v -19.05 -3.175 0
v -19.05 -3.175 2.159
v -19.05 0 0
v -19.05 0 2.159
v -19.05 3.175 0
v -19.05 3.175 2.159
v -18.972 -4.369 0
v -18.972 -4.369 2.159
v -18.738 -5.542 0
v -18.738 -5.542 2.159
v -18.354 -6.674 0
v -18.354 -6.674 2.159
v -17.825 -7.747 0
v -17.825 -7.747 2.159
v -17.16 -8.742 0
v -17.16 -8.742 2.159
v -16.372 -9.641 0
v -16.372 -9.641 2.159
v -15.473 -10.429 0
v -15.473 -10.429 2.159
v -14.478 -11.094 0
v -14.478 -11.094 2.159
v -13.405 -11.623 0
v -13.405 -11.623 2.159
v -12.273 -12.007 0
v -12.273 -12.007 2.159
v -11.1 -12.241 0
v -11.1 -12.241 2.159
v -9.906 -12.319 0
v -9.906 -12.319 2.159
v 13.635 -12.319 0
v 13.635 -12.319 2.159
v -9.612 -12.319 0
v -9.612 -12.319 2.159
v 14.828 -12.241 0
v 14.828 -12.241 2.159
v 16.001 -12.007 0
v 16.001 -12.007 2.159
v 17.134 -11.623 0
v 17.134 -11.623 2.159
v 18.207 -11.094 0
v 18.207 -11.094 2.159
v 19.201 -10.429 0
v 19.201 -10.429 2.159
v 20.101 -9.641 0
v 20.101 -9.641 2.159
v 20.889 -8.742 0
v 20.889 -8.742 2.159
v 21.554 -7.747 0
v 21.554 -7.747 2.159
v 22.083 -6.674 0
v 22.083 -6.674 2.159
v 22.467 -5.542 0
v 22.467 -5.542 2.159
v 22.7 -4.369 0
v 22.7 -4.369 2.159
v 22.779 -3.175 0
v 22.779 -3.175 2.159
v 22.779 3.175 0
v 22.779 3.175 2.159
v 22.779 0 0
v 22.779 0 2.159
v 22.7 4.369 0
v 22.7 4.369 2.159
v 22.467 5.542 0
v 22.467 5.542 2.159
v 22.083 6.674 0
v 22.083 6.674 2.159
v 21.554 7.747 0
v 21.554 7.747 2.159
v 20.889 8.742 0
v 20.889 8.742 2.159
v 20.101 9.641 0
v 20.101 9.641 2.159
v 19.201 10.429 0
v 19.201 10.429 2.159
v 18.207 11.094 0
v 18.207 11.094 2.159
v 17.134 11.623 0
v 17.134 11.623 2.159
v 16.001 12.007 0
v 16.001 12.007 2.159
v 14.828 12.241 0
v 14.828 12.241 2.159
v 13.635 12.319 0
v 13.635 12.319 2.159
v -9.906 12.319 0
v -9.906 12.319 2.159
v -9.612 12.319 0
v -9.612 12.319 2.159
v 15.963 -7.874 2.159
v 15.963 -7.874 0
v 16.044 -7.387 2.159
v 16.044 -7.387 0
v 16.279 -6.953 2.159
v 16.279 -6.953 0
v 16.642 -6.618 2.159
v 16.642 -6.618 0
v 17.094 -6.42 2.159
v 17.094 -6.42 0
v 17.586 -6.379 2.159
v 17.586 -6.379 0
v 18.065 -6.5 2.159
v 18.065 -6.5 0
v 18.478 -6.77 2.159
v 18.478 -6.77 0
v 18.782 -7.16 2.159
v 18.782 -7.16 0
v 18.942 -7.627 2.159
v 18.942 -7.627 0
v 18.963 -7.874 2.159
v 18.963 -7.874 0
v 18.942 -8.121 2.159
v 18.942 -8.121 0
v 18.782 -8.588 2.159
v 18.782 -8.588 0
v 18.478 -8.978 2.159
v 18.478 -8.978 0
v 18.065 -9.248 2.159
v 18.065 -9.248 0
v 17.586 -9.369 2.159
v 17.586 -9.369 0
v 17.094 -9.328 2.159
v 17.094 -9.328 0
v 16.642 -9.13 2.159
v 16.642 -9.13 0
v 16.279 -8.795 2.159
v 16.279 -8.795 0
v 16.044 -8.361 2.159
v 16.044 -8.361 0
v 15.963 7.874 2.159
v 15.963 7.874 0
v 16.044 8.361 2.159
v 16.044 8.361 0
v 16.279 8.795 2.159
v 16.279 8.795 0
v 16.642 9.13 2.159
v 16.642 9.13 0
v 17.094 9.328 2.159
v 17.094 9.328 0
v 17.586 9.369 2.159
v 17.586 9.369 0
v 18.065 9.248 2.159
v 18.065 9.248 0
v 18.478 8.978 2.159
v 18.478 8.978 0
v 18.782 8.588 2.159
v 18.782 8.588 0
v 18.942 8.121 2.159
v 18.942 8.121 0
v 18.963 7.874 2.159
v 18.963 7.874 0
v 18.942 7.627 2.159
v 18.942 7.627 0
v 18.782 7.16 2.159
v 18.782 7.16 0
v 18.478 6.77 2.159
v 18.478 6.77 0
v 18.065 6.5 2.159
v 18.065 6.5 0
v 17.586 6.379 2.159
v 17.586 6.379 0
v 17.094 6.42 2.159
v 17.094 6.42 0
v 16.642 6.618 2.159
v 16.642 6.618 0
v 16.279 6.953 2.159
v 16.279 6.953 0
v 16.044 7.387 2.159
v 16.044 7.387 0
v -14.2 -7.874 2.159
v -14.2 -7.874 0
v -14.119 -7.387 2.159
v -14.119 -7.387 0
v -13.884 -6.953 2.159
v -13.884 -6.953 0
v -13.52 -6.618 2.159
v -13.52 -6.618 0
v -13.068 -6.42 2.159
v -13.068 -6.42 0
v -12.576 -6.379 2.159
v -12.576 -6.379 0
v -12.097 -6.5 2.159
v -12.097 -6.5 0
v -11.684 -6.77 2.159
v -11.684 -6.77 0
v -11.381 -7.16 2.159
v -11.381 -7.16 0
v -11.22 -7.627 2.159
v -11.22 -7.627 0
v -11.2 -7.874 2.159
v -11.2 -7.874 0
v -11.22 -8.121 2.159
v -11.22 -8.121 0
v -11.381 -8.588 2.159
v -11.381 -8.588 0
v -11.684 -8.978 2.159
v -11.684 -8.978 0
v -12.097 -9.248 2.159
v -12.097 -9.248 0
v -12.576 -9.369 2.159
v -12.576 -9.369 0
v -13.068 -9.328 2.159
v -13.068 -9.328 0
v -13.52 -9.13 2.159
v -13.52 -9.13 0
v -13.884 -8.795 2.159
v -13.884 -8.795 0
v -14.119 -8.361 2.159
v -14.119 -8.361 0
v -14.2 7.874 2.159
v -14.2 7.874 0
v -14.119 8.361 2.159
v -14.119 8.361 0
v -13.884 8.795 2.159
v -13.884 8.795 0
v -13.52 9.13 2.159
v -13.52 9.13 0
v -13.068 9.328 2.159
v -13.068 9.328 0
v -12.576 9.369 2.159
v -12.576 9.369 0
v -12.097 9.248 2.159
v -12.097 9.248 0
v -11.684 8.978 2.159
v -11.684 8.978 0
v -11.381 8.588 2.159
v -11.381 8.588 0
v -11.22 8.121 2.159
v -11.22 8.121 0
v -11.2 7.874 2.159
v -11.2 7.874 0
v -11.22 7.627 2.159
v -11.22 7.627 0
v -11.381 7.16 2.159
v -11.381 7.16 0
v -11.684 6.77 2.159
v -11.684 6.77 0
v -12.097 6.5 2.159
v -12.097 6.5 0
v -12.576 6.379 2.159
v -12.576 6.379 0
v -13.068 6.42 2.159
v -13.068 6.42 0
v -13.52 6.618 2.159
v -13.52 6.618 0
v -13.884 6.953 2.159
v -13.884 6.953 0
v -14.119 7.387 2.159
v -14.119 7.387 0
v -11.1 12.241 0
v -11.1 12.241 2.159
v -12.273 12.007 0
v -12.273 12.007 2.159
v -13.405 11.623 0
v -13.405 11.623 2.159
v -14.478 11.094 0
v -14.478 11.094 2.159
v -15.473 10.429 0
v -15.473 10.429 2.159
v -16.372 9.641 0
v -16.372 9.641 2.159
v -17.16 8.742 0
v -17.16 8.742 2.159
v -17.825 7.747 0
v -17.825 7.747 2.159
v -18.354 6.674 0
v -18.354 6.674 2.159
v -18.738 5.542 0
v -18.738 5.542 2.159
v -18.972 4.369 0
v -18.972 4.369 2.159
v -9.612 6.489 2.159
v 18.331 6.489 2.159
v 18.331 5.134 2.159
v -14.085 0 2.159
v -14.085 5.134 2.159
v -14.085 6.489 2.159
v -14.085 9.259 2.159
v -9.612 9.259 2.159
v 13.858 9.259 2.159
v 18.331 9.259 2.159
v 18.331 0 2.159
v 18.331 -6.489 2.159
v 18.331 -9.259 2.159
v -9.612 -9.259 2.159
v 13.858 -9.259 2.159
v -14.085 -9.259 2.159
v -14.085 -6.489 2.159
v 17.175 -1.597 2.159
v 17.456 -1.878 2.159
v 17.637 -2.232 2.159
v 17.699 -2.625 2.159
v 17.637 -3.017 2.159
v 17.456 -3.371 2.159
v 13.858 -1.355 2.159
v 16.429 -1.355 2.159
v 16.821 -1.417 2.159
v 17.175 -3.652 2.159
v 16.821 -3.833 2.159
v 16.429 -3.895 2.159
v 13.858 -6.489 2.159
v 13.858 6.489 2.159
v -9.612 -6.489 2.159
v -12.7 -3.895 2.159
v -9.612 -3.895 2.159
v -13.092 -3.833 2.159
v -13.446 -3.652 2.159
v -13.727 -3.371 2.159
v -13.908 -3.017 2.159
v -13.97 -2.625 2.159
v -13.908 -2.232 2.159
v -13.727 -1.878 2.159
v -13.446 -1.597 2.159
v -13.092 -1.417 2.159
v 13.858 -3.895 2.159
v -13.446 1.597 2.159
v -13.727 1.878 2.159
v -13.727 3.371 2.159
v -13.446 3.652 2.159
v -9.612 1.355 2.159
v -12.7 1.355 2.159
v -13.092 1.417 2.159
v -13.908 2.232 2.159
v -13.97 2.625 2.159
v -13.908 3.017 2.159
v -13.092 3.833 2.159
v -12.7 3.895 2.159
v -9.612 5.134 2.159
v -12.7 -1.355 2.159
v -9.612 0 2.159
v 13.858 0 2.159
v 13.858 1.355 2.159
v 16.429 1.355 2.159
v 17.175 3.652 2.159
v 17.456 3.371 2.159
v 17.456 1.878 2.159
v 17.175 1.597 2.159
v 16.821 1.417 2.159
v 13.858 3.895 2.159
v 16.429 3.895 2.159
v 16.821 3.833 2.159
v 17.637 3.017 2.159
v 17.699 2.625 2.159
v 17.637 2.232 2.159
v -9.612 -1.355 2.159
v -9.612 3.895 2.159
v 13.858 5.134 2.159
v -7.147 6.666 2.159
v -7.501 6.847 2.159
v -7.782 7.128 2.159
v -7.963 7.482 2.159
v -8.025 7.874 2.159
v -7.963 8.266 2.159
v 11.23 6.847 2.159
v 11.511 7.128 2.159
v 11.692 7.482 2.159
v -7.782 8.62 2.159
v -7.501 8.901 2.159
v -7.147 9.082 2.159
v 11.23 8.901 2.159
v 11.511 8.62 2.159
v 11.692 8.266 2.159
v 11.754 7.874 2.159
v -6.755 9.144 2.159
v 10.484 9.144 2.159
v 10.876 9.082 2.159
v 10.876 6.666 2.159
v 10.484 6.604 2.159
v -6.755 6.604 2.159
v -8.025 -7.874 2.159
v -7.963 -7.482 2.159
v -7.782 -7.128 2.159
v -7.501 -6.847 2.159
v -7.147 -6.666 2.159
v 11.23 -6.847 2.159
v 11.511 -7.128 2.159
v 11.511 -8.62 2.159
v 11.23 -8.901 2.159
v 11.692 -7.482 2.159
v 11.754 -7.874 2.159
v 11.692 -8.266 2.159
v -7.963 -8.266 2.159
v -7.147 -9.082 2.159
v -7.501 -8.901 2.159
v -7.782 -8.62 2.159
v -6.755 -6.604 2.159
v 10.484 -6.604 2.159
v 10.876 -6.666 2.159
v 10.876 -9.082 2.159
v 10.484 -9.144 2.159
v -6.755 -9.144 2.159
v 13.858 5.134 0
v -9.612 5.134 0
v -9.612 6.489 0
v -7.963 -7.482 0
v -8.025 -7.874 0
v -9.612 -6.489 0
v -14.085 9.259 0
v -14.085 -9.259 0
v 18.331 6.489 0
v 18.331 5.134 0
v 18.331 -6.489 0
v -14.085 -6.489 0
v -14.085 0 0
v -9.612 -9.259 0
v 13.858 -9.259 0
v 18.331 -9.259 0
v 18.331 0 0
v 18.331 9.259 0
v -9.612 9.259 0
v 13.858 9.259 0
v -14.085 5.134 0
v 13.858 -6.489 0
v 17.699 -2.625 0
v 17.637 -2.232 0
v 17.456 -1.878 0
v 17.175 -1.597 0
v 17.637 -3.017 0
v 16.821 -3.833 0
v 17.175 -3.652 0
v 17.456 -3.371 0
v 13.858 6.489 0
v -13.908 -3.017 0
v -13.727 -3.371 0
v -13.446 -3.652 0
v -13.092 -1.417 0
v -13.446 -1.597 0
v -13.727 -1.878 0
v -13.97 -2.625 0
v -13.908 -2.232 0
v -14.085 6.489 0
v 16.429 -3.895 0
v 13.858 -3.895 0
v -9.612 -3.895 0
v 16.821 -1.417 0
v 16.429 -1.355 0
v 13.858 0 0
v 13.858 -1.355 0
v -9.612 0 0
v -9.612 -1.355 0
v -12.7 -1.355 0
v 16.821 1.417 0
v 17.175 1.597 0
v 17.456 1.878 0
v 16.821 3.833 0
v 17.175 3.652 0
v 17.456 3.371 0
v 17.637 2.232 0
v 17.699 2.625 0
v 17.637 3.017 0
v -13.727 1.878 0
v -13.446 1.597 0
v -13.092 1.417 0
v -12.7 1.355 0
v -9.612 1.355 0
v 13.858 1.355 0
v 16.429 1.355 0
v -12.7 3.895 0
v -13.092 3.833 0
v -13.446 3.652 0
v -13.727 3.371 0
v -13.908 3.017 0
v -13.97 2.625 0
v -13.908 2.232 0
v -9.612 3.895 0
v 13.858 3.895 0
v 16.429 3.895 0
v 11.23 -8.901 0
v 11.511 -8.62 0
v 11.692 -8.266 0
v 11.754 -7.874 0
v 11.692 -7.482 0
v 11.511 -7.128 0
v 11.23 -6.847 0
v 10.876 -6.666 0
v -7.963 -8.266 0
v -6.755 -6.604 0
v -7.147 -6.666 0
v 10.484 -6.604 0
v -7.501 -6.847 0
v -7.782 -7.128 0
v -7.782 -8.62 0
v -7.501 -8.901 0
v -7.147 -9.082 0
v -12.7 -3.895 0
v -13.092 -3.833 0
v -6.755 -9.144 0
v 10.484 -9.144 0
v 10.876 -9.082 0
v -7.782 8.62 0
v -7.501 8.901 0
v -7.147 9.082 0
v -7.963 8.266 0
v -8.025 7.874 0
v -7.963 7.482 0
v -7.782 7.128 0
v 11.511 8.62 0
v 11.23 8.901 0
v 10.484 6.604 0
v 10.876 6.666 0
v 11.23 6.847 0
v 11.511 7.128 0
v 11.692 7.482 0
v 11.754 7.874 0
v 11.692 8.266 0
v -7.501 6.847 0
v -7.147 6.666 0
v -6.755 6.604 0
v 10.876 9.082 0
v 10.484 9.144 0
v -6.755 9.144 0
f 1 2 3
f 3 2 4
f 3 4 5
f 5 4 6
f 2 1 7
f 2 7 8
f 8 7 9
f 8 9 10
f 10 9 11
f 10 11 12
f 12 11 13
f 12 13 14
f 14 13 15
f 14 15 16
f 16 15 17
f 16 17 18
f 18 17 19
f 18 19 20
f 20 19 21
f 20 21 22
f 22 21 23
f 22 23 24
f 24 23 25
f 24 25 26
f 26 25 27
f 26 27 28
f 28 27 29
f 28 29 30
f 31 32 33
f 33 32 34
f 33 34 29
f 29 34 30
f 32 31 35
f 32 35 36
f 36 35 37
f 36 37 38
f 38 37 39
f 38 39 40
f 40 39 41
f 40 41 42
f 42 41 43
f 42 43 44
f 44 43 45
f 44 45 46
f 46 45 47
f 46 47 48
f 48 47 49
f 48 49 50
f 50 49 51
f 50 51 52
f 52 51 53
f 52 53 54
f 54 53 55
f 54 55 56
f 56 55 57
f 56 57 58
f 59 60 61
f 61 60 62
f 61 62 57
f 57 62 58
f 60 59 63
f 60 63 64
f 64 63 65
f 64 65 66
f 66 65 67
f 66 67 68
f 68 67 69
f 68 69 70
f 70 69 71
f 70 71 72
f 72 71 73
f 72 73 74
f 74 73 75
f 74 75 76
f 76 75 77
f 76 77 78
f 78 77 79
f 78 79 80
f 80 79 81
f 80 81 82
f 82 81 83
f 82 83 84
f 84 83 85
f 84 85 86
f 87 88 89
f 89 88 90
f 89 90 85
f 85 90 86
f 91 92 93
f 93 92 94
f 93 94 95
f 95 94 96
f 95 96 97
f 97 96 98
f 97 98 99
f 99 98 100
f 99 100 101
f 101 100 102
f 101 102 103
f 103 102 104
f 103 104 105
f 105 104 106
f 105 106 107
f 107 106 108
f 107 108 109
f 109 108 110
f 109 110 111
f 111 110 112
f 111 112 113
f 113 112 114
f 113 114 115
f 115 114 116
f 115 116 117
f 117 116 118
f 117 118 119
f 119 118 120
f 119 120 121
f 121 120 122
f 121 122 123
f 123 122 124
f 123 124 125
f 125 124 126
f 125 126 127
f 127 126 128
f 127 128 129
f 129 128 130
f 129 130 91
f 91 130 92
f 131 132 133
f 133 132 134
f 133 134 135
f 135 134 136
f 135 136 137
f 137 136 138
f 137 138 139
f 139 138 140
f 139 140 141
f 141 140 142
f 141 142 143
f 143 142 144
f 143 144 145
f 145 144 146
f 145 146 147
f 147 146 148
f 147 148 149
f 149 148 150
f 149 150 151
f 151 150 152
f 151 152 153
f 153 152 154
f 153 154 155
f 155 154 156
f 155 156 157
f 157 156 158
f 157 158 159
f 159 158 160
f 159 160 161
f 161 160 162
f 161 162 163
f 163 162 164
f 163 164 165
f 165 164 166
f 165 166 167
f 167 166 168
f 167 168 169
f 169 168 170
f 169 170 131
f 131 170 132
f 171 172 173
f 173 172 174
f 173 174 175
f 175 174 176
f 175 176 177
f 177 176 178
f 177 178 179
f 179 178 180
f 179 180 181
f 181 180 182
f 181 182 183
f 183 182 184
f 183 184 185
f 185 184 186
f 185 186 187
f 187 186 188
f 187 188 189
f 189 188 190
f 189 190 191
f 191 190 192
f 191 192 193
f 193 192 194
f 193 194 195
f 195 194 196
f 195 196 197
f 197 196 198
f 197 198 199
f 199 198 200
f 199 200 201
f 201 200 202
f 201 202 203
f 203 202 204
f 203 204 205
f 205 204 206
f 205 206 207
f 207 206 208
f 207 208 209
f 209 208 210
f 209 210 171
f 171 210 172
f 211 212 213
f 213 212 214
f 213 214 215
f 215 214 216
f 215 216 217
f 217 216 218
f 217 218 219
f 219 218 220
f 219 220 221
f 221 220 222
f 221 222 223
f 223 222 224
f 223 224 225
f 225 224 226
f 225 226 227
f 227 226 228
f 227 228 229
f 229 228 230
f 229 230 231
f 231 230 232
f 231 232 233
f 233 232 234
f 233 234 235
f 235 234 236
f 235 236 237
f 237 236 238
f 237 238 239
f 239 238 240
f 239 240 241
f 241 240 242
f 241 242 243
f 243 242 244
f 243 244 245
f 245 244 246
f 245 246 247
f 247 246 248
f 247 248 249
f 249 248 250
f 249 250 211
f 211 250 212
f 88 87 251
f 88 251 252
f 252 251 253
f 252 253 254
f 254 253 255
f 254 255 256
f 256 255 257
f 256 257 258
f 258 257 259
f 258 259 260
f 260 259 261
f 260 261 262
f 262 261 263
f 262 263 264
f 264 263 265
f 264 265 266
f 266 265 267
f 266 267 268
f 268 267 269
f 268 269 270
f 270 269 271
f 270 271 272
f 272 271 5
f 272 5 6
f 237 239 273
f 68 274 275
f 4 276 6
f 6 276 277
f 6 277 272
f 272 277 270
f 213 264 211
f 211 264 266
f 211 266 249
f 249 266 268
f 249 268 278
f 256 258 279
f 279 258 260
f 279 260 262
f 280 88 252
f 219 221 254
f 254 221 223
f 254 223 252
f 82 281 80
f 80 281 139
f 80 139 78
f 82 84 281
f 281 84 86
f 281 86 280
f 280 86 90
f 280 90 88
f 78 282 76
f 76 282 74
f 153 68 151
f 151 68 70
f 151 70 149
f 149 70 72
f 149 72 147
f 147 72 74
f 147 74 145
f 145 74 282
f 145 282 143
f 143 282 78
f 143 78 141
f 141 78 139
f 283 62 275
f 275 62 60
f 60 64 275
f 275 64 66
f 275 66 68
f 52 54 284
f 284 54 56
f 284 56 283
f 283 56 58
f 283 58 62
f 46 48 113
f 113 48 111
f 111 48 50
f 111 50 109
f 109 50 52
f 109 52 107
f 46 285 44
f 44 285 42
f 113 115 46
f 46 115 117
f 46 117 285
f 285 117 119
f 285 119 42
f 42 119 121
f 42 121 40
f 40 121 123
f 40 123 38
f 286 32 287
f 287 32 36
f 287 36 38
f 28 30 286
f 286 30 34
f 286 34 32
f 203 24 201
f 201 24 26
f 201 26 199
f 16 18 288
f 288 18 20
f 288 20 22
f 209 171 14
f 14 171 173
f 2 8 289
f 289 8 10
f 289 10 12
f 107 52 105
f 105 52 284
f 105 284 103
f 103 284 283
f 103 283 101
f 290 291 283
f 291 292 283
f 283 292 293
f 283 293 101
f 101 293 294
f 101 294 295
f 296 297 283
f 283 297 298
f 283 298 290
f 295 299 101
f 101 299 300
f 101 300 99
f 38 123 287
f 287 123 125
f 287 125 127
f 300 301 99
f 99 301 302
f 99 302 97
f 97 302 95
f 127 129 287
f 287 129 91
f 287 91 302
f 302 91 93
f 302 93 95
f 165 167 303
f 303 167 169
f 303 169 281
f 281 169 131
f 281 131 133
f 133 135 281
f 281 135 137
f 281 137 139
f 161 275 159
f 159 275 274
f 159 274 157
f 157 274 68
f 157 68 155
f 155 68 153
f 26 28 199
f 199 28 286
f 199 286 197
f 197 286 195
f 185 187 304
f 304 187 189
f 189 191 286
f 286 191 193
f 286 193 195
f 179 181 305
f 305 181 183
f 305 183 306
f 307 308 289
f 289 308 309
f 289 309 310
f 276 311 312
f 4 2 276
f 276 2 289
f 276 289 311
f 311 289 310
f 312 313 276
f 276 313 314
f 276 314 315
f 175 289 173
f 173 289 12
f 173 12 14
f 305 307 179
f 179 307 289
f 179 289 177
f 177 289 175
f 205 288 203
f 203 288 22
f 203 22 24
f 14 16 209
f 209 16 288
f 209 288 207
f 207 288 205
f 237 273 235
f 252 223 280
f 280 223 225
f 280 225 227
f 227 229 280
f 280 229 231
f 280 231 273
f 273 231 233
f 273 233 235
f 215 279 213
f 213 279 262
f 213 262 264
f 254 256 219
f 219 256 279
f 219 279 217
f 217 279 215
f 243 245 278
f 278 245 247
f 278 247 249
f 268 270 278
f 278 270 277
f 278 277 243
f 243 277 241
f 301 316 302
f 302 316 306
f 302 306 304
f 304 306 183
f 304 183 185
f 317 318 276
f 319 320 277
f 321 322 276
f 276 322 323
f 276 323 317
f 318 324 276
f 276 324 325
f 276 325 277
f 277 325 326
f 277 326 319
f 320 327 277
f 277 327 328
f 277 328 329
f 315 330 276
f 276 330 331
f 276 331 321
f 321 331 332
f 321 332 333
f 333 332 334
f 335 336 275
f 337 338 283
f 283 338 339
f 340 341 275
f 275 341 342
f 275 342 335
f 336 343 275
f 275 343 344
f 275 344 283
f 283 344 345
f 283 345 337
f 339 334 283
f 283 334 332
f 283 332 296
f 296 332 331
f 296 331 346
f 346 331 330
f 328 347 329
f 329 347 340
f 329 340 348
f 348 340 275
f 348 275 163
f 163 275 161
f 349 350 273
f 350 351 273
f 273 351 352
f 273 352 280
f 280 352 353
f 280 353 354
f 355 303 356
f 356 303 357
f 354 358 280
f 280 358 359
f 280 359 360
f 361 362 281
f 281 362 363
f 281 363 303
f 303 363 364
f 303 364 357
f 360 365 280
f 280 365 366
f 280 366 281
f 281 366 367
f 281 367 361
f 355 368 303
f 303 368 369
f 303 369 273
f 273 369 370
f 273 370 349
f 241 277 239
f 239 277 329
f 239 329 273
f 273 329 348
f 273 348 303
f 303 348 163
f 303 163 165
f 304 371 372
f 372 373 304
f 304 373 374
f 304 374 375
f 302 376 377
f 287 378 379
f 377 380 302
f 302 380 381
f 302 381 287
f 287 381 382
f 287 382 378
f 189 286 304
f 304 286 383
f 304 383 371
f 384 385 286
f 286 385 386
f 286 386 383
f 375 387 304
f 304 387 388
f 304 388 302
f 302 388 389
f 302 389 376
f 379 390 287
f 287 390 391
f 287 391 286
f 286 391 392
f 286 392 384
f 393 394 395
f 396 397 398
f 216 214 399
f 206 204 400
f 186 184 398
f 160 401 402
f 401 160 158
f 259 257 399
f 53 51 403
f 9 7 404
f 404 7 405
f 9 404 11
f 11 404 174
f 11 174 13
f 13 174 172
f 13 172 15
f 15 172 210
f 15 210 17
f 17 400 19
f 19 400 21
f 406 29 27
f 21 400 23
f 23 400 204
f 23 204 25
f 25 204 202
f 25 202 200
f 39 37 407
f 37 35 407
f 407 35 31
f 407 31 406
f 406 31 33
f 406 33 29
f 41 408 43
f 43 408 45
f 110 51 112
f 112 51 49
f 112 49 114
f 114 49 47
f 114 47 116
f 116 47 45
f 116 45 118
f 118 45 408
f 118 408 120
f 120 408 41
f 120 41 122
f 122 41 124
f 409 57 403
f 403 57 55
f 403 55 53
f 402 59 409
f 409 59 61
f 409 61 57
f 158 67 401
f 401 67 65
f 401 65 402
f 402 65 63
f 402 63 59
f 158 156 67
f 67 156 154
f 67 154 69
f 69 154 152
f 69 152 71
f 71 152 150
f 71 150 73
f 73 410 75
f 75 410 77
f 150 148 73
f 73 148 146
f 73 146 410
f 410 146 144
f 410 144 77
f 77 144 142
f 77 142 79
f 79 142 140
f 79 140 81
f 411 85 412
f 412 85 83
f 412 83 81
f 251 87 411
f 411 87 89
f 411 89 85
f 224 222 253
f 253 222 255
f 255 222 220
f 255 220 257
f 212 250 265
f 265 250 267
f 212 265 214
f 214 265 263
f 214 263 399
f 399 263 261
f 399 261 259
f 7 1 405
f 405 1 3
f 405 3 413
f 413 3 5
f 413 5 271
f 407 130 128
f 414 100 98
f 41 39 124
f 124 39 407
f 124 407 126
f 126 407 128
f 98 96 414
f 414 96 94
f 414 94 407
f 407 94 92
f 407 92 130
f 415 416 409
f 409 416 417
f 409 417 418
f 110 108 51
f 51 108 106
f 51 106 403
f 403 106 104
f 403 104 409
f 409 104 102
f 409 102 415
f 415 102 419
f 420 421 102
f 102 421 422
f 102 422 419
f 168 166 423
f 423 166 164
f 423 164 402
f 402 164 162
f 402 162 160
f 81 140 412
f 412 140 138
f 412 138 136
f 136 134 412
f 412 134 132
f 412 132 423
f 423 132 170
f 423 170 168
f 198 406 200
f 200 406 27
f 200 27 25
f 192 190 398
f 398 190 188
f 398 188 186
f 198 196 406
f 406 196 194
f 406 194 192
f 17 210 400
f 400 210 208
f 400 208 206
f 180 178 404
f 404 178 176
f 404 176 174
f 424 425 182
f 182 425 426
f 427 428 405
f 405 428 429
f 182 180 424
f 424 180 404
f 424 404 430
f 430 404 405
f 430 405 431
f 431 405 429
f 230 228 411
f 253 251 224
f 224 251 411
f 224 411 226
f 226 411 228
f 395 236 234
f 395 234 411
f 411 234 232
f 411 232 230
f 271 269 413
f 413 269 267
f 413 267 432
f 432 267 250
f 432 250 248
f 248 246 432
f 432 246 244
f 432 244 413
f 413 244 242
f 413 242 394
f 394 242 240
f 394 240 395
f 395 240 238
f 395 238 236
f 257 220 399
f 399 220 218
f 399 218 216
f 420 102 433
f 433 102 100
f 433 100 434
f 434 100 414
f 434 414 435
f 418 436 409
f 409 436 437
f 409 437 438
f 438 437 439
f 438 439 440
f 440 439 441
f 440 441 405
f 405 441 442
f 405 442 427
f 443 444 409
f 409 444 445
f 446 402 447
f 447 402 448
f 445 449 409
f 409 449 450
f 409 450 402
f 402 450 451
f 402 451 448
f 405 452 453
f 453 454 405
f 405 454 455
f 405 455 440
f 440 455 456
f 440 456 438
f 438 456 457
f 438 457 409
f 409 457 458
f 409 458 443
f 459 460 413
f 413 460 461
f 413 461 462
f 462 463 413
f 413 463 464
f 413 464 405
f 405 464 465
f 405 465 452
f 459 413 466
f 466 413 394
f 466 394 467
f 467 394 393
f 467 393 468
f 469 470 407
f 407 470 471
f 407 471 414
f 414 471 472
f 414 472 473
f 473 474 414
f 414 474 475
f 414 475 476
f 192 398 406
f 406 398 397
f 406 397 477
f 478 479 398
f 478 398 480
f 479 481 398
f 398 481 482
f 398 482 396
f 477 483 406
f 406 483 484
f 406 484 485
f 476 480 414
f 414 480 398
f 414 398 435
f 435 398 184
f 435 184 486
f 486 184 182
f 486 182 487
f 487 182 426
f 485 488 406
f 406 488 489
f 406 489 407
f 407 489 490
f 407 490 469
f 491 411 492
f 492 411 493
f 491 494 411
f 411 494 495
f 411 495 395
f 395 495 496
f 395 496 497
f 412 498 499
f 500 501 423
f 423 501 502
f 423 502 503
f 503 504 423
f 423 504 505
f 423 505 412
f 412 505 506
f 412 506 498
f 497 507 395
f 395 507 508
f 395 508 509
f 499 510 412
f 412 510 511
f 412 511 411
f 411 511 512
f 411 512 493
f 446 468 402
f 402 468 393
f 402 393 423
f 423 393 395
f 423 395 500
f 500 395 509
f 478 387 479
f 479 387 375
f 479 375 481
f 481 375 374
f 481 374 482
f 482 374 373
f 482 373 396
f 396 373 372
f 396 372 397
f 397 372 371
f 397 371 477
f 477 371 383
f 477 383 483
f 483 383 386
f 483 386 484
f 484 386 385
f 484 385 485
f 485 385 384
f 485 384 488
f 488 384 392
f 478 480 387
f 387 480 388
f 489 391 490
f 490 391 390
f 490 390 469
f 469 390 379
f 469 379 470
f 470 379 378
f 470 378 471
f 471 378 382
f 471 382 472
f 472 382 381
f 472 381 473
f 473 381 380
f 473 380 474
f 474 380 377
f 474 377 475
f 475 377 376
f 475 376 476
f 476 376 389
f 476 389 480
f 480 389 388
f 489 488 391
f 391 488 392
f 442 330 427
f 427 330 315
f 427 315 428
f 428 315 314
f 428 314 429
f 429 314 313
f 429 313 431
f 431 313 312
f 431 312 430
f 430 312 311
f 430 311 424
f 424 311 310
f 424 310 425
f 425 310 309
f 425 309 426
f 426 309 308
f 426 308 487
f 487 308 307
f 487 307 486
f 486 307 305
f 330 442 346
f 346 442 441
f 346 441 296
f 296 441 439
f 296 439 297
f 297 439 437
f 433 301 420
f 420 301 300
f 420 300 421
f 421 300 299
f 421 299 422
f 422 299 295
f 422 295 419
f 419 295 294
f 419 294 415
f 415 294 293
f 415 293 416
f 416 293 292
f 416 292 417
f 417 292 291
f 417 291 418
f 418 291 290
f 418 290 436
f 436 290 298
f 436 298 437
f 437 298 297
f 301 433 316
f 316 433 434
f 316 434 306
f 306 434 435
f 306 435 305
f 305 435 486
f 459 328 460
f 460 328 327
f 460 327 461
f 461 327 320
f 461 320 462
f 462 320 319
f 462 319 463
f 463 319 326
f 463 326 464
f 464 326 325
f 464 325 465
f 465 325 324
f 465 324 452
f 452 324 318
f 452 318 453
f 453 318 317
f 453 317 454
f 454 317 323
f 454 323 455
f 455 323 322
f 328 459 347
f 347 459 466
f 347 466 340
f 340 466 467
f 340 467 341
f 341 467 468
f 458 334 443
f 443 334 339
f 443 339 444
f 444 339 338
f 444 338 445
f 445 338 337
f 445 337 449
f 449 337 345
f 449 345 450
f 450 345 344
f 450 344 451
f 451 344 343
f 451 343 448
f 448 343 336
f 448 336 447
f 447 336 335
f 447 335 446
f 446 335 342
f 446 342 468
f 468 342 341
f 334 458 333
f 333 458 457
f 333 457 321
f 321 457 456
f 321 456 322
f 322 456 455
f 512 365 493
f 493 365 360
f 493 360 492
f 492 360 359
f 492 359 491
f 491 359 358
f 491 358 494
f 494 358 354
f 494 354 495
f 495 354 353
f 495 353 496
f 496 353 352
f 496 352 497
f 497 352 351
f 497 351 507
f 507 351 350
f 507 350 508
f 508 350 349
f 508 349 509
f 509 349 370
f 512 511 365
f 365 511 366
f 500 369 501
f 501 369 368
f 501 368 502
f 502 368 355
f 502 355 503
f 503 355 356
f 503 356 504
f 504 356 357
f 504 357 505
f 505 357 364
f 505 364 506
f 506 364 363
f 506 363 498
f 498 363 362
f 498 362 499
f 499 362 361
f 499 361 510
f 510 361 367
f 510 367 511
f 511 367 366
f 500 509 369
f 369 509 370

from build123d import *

# Parameters (mm, degrees)
SKETCH1_R           = 1.5
BOSS_EXTRUDE1_DEPTH = 2.159
CUT_EXTRUDE1_DEPTH  = 3.159


with BuildPart() as part:
    # Sketch1 → Boss-Extrude1 (new body)
    with BuildSketch(Plane.XY):
        with BuildLine():
            Line((-9.906, 12.319), (13.634725801, 12.319))
            ThreePointArc((13.634725801, 12.319), (20.100510208, 9.640784407), (22.778725801, 3.175))
            Line((22.778725801, 3.175), (22.778725801, -3.175))
            ThreePointArc((22.778725801, -3.175), (20.100510208, -9.640784407), (13.634725801, -12.319))
            Line((13.634725801, -12.319), (-9.906, -12.319))
            ThreePointArc((-9.906, -12.319), (-16.371784407, -9.640784407), (-19.05, -3.175))
            Line((-19.05, -3.175), (-19.05, 3.175))
            ThreePointArc((-19.05, 3.175), (-16.371784407, 9.640784407), (-9.906, 12.319))
        make_face()
        with Locations((-12.7, 7.874)):
            Circle(SKETCH1_R, mode=Mode.SUBTRACT)
        with Locations((-12.7, -7.874)):
            Circle(SKETCH1_R, mode=Mode.SUBTRACT)
        with Locations((17.4625, 7.874)):
            Circle(SKETCH1_R, mode=Mode.SUBTRACT)
        with Locations((17.4625, -7.874)):
            Circle(SKETCH1_R, mode=Mode.SUBTRACT)
    extrude(amount=BOSS_EXTRUDE1_DEPTH)

    # Sketch4 → Cut-Extrude1 (cut, through all)
    with BuildSketch(Plane.XY.offset(2.159)):
        with BuildLine():
            Line((-6.755, 9.144), (10.483725801, 9.144))
            ThreePointArc((10.483725801, 9.144), (11.753725801, 7.874), (10.483725801, 6.604))
            Line((10.483725801, 6.604), (-6.755, 6.604))
            ThreePointArc((-6.755, 6.604), (-8.025, 7.874), (-6.755, 9.144))
        make_face()
        with BuildLine():
            Line((-12.7, 3.894666667), (16.428725801, 3.894666667))
            ThreePointArc((16.428725801, 3.894666667), (17.698725801, 2.624666667), (16.428725801, 1.354666667))
            Line((16.428725801, 1.354666667), (-12.7, 1.354666667))
            ThreePointArc((-12.7, 1.354666667), (-13.97, 2.624666667), (-12.7, 3.894666667))
        make_face()
        with BuildLine():
            Line((-12.7, -1.354666667), (16.428725801, -1.354666667))
            ThreePointArc((16.428725801, -1.354666667), (17.698725801, -2.624666667), (16.428725801, -3.894666667))
            Line((16.428725801, -3.894666667), (-12.7, -3.894666667))
            ThreePointArc((-12.7, -3.894666667), (-13.97, -2.624666667), (-12.7, -1.354666667))
        make_face()
        with BuildLine():
            Line((-6.755, -6.604), (10.483725801, -6.604))
            ThreePointArc((10.483725801, -6.604), (11.753725801, -7.874), (10.483725801, -9.144))
            Line((10.483725801, -9.144), (-6.755, -9.144))
            ThreePointArc((-6.755, -9.144), (-8.025, -7.874), (-6.755, -6.604))
        make_face()
    extrude(amount=-CUT_EXTRUDE1_DEPTH, mode=Mode.SUBTRACT)


solid = part.part
